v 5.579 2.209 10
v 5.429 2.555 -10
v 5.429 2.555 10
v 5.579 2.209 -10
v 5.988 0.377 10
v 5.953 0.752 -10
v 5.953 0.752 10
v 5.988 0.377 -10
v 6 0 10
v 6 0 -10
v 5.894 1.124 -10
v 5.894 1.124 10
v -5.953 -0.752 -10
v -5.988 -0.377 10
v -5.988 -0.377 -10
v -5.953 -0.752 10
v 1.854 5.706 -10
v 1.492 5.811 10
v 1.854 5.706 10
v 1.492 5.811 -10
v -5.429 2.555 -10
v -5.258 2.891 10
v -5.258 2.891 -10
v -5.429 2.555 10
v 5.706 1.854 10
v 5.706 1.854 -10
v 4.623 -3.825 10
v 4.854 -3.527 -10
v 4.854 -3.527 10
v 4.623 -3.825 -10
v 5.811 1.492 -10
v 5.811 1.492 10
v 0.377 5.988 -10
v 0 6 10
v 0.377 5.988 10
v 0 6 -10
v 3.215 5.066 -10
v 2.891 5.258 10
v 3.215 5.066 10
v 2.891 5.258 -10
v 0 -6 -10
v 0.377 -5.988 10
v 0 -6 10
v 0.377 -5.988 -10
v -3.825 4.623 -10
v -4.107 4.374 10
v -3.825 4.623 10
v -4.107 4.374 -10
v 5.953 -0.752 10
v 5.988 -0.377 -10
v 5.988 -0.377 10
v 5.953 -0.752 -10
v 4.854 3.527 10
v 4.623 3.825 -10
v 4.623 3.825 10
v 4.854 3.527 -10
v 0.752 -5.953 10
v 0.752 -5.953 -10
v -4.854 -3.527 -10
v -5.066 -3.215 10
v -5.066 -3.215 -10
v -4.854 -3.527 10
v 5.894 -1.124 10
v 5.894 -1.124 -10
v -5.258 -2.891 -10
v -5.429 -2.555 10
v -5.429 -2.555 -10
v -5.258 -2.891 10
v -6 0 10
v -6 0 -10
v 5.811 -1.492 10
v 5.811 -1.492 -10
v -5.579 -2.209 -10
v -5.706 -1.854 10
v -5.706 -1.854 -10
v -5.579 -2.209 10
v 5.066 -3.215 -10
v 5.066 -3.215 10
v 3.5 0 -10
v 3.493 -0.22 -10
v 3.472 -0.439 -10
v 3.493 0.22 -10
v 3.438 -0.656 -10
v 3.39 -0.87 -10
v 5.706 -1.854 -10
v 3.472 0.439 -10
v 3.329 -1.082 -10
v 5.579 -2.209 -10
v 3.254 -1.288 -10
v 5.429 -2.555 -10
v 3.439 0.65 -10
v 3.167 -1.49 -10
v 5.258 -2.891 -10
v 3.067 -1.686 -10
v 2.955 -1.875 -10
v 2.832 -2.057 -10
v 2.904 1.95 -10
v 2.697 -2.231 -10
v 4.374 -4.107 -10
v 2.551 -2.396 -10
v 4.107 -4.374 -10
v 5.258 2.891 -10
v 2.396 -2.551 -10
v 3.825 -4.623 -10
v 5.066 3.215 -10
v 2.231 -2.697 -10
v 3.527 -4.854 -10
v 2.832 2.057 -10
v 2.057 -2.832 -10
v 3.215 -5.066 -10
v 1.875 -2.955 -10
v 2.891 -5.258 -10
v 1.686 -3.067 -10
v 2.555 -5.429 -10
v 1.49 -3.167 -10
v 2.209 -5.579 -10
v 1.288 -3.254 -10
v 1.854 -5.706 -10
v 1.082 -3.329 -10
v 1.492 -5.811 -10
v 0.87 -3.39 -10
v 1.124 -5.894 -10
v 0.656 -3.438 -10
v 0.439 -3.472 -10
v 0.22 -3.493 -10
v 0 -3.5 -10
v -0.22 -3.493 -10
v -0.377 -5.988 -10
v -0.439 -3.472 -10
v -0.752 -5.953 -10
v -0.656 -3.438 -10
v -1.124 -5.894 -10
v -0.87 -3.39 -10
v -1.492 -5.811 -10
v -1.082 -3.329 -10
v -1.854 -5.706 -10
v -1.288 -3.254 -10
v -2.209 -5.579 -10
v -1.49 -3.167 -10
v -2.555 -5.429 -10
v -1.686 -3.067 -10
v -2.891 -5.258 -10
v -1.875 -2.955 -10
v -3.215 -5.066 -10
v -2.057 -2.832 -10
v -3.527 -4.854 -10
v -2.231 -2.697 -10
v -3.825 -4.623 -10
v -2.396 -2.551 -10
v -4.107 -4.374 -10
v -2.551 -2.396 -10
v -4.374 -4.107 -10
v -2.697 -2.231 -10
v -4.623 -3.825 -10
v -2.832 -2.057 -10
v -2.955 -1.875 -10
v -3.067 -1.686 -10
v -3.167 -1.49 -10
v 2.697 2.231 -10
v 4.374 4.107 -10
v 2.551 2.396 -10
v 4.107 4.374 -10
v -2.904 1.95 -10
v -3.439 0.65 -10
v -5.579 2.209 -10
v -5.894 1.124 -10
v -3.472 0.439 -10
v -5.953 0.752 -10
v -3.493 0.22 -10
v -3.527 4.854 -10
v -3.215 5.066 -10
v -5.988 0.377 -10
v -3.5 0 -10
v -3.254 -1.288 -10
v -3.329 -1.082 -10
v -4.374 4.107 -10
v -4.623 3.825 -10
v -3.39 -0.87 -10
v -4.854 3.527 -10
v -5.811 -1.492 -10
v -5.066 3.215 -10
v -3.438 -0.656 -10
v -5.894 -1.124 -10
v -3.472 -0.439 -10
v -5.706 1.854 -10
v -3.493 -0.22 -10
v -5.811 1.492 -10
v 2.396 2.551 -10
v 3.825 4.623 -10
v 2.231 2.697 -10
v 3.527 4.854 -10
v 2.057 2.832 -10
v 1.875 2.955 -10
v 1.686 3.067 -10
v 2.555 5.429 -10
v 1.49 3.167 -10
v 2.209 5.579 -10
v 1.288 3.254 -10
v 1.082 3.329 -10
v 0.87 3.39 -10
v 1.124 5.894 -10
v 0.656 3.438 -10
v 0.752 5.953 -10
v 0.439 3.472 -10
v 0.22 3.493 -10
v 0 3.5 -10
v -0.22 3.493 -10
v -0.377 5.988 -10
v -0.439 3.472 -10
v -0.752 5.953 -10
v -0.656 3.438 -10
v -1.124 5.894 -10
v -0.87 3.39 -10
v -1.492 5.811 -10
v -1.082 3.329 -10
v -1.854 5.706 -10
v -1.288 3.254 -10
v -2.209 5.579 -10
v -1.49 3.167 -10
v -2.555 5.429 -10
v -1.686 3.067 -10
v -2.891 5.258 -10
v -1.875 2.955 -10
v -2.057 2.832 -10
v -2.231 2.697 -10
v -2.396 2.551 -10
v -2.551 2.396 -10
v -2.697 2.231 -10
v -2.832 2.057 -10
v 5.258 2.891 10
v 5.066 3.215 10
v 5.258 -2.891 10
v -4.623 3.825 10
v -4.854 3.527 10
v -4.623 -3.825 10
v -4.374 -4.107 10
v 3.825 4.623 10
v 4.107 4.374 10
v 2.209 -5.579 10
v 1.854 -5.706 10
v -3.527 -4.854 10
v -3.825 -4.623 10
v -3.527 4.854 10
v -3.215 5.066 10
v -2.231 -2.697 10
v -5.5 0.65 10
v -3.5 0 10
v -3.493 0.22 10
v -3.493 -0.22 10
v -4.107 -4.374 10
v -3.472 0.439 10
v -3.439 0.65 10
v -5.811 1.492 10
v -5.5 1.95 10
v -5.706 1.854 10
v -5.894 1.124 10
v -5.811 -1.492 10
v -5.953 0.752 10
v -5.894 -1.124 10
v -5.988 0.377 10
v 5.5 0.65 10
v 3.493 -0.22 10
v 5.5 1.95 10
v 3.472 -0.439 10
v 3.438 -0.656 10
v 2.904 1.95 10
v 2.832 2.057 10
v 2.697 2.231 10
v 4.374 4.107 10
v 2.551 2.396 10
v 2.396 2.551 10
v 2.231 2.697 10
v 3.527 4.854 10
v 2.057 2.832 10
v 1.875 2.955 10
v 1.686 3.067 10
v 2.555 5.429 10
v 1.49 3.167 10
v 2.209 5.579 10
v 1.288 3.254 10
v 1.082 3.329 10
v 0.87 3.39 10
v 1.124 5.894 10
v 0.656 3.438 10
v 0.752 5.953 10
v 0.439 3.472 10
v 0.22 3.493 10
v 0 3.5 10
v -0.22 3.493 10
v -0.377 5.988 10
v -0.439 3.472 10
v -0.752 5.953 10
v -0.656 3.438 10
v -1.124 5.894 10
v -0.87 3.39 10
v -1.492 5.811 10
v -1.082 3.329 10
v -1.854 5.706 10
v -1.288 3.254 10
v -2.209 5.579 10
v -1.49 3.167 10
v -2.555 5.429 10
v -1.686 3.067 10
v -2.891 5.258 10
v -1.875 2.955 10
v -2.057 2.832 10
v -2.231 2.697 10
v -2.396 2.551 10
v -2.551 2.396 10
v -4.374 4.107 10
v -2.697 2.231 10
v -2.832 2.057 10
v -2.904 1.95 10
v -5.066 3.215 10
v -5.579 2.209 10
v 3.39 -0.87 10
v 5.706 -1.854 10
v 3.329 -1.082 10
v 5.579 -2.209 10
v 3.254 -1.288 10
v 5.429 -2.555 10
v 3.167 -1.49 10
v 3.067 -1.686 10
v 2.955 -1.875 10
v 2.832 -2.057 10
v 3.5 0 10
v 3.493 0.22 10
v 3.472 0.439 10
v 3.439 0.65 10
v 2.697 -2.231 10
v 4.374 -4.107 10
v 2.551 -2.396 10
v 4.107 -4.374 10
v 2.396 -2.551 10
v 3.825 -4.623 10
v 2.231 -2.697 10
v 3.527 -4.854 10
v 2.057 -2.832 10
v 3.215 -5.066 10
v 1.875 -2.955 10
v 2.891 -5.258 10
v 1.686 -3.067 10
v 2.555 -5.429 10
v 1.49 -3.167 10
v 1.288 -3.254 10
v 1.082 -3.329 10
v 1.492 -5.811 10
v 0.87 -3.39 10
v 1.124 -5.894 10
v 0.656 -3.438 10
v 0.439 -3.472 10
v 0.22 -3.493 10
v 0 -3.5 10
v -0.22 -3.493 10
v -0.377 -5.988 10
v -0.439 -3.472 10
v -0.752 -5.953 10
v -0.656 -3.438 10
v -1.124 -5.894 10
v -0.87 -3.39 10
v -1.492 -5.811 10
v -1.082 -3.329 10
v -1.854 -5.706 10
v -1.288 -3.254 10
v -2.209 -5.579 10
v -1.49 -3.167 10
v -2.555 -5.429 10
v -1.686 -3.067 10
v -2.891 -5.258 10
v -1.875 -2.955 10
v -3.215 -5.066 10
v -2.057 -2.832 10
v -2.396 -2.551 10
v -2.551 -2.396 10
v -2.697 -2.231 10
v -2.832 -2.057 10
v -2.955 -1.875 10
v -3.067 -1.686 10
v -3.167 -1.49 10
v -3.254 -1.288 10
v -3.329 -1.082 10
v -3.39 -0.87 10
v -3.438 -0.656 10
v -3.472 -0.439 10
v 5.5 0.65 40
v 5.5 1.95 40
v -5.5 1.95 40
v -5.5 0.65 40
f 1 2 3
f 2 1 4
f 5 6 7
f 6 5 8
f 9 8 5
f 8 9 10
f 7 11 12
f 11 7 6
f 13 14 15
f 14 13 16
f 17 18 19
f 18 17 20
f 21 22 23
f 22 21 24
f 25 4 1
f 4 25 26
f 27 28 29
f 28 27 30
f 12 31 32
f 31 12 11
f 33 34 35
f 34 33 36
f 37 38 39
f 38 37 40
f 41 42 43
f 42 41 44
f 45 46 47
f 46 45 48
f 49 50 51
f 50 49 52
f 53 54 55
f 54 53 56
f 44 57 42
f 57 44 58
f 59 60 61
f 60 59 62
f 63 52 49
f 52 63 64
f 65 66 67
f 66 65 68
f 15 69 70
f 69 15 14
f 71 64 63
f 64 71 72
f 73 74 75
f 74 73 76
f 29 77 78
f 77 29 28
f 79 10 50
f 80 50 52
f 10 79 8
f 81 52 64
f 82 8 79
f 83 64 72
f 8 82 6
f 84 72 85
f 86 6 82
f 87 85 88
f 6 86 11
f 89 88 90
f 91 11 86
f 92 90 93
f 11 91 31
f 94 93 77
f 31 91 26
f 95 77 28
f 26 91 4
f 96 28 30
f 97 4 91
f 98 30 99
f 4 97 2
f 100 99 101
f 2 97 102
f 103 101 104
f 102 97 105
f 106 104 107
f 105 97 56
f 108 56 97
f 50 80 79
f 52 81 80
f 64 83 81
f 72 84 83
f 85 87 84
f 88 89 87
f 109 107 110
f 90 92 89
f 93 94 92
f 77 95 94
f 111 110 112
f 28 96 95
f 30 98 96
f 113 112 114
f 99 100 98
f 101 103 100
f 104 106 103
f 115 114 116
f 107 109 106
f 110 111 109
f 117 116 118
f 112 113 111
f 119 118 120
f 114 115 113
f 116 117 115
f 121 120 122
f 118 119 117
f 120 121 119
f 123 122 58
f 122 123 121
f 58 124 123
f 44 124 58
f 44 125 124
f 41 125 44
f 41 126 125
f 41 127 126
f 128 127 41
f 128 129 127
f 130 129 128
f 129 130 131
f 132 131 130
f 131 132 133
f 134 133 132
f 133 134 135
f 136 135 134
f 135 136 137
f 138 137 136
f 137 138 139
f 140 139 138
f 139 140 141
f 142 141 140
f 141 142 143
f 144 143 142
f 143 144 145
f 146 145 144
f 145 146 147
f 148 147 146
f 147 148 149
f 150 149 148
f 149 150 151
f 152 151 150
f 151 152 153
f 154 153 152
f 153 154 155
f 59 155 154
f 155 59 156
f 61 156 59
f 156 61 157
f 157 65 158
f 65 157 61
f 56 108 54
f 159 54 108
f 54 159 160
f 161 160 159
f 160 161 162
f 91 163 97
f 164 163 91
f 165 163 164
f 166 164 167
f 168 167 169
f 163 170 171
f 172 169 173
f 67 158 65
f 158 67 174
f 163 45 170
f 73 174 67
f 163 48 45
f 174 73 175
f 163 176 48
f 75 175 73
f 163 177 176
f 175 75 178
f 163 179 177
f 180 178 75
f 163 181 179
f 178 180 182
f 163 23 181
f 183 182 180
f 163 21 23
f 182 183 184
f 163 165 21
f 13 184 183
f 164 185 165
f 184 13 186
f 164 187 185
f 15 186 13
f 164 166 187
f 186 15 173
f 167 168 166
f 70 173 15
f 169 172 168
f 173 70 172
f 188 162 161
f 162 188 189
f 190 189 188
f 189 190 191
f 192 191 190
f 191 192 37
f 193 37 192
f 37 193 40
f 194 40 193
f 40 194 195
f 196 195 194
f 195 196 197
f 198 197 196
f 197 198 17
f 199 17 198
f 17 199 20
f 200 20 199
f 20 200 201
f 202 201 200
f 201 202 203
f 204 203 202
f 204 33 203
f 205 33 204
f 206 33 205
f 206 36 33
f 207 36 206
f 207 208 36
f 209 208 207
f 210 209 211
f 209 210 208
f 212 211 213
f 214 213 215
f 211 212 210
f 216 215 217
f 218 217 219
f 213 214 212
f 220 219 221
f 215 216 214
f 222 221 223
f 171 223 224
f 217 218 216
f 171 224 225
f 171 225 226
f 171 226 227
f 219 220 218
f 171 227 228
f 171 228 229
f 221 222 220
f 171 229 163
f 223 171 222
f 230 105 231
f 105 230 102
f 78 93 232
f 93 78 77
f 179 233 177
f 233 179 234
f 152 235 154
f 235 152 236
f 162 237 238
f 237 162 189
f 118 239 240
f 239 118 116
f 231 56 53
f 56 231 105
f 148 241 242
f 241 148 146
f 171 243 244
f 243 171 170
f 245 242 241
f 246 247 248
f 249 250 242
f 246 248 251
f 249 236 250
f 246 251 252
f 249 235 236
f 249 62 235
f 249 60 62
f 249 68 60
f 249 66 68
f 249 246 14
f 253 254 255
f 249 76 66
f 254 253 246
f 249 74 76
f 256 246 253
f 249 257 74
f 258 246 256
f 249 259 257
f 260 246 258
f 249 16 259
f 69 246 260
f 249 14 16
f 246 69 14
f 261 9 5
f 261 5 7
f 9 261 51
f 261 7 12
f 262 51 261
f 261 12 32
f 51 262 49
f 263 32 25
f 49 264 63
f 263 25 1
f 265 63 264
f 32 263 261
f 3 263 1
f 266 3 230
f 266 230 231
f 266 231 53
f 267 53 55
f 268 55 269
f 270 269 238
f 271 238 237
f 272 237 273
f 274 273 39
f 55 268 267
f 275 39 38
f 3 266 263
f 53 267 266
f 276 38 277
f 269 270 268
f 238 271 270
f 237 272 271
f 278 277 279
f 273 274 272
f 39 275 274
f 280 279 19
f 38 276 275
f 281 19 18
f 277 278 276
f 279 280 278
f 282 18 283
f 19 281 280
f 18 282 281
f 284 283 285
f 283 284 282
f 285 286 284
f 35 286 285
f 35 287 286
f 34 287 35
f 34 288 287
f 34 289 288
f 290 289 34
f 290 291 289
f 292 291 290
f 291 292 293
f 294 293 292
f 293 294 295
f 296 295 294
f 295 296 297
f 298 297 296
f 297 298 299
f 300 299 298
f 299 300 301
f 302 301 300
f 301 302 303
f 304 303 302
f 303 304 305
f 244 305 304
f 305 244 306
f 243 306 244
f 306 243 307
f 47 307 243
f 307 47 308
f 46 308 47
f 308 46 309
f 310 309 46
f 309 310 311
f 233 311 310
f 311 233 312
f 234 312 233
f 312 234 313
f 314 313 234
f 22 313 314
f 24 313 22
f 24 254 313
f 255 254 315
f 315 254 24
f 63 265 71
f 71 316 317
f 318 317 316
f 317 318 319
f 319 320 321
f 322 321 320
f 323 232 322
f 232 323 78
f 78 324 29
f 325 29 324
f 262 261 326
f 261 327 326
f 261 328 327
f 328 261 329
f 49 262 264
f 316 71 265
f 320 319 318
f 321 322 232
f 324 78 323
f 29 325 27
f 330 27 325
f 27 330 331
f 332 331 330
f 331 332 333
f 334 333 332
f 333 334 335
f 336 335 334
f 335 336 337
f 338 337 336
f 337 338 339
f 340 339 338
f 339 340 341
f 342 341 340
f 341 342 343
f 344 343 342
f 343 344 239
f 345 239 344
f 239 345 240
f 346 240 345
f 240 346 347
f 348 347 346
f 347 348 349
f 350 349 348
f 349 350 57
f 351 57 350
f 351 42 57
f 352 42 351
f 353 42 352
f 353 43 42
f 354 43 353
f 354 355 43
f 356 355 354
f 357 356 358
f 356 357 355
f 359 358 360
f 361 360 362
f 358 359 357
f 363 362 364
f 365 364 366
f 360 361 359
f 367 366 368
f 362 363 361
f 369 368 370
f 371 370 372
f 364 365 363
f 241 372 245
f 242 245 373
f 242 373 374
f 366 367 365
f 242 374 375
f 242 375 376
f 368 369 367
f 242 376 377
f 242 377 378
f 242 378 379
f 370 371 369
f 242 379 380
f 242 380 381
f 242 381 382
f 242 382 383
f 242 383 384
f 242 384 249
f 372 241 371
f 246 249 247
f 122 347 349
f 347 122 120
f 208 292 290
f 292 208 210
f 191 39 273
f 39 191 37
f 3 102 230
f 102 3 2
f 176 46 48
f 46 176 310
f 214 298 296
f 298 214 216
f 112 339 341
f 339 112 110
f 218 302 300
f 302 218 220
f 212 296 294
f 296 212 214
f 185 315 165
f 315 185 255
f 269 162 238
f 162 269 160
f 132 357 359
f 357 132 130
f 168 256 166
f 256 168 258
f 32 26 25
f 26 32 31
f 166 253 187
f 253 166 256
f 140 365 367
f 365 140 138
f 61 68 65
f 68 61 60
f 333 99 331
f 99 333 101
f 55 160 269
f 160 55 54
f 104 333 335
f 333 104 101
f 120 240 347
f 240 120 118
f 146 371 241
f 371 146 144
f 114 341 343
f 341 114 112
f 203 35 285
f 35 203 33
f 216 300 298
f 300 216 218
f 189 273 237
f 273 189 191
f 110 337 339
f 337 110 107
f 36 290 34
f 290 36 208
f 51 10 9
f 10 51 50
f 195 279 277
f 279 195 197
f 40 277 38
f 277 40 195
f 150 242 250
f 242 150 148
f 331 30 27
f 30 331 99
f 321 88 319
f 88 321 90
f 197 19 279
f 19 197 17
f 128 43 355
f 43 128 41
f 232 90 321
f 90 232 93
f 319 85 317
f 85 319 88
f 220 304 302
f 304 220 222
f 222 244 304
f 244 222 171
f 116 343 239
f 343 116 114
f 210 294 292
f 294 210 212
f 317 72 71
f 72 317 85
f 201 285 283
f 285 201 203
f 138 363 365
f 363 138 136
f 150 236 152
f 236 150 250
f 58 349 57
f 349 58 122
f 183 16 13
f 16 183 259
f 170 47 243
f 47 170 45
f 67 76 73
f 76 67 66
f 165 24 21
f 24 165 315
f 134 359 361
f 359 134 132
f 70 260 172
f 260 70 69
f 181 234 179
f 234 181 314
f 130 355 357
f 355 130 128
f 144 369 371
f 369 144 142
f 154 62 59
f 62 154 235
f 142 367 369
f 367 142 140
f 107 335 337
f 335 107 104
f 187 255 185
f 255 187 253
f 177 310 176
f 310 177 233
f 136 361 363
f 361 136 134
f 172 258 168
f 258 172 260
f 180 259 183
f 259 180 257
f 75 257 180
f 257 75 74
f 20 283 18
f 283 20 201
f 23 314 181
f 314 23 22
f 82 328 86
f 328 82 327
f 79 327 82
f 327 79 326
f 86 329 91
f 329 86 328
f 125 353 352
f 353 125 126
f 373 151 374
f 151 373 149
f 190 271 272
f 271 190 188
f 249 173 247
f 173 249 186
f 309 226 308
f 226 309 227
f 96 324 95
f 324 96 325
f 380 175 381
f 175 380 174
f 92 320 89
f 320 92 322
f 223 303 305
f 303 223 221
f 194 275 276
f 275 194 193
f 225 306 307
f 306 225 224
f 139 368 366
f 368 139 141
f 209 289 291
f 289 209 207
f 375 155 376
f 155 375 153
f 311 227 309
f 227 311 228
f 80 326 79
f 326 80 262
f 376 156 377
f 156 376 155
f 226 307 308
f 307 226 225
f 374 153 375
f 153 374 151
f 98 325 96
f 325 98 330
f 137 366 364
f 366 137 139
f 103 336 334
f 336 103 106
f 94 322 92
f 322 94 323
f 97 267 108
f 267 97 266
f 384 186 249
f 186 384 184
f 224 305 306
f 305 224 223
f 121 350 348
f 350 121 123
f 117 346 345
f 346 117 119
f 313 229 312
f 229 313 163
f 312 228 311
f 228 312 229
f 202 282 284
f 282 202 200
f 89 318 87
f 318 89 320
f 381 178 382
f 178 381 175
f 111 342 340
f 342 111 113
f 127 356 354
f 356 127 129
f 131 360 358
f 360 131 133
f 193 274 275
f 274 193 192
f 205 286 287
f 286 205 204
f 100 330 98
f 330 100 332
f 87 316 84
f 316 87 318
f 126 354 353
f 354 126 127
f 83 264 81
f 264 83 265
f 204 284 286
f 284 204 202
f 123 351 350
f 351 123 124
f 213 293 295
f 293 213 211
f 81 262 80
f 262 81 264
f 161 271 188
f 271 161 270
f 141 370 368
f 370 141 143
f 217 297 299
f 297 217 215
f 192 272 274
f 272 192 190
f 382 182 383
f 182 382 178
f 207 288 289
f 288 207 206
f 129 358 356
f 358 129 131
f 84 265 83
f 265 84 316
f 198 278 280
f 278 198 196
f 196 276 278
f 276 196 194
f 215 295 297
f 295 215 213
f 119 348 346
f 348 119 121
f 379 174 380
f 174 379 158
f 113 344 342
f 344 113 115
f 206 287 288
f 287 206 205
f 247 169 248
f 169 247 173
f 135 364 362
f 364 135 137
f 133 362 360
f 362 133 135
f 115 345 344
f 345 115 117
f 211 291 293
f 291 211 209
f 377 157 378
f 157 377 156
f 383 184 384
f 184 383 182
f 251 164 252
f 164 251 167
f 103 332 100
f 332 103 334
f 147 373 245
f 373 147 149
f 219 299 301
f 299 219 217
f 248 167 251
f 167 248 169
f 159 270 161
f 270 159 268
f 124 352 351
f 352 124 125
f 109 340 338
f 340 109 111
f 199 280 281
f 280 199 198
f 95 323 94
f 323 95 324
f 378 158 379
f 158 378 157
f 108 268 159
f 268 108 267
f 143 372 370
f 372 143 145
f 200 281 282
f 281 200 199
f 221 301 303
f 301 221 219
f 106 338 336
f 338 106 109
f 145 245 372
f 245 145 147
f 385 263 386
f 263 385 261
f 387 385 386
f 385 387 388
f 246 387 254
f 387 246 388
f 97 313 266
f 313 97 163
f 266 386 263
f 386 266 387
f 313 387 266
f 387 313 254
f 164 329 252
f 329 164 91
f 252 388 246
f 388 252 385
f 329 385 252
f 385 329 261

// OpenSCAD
$fn = 100;
cylinder_in = 7;
cylinder_out = 12;
cylinder_height = 20;
mirror_thickness = 1.3;

difference(){
    cylinder( cylinder_height, d=cylinder_out, center=true);
    cylinder( cylinder_height+2, d=cylinder_in, center=true);

}
    translate([0,mirror_thickness,15])cube([11,mirror_thickness,50],center = true);
